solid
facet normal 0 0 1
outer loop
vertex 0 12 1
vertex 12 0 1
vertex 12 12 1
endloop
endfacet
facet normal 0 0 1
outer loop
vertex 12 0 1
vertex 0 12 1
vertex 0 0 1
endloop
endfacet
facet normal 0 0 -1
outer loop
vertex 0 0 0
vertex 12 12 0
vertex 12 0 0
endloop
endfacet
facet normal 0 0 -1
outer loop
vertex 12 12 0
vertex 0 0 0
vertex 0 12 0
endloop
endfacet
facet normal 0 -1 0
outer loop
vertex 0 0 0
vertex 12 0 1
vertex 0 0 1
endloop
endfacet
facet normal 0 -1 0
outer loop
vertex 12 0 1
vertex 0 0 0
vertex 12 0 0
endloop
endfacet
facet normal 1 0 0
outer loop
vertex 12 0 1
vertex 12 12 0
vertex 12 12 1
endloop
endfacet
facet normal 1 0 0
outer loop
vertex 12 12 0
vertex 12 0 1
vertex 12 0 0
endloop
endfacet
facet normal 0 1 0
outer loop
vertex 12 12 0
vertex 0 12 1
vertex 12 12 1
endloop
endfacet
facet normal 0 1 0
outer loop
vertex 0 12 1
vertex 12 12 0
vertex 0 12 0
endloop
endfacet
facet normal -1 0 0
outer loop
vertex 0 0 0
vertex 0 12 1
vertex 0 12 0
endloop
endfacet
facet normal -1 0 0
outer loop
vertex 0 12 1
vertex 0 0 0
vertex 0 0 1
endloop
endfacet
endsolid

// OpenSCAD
/* Warning, this is a very basic generator with a lot of approximation 
input data : [VQFN, KDX, 12x12x1.0mm, 100, , C, C04-00407C]
generated by com.zoubworld.electronics.cad.model3d.Basic
Date : Sun Feb 15 10:50:48 CET 2026
*/

//body
color("black")
translate([0,0,0])
cube([12.0,12.0,1.0], center=false);
